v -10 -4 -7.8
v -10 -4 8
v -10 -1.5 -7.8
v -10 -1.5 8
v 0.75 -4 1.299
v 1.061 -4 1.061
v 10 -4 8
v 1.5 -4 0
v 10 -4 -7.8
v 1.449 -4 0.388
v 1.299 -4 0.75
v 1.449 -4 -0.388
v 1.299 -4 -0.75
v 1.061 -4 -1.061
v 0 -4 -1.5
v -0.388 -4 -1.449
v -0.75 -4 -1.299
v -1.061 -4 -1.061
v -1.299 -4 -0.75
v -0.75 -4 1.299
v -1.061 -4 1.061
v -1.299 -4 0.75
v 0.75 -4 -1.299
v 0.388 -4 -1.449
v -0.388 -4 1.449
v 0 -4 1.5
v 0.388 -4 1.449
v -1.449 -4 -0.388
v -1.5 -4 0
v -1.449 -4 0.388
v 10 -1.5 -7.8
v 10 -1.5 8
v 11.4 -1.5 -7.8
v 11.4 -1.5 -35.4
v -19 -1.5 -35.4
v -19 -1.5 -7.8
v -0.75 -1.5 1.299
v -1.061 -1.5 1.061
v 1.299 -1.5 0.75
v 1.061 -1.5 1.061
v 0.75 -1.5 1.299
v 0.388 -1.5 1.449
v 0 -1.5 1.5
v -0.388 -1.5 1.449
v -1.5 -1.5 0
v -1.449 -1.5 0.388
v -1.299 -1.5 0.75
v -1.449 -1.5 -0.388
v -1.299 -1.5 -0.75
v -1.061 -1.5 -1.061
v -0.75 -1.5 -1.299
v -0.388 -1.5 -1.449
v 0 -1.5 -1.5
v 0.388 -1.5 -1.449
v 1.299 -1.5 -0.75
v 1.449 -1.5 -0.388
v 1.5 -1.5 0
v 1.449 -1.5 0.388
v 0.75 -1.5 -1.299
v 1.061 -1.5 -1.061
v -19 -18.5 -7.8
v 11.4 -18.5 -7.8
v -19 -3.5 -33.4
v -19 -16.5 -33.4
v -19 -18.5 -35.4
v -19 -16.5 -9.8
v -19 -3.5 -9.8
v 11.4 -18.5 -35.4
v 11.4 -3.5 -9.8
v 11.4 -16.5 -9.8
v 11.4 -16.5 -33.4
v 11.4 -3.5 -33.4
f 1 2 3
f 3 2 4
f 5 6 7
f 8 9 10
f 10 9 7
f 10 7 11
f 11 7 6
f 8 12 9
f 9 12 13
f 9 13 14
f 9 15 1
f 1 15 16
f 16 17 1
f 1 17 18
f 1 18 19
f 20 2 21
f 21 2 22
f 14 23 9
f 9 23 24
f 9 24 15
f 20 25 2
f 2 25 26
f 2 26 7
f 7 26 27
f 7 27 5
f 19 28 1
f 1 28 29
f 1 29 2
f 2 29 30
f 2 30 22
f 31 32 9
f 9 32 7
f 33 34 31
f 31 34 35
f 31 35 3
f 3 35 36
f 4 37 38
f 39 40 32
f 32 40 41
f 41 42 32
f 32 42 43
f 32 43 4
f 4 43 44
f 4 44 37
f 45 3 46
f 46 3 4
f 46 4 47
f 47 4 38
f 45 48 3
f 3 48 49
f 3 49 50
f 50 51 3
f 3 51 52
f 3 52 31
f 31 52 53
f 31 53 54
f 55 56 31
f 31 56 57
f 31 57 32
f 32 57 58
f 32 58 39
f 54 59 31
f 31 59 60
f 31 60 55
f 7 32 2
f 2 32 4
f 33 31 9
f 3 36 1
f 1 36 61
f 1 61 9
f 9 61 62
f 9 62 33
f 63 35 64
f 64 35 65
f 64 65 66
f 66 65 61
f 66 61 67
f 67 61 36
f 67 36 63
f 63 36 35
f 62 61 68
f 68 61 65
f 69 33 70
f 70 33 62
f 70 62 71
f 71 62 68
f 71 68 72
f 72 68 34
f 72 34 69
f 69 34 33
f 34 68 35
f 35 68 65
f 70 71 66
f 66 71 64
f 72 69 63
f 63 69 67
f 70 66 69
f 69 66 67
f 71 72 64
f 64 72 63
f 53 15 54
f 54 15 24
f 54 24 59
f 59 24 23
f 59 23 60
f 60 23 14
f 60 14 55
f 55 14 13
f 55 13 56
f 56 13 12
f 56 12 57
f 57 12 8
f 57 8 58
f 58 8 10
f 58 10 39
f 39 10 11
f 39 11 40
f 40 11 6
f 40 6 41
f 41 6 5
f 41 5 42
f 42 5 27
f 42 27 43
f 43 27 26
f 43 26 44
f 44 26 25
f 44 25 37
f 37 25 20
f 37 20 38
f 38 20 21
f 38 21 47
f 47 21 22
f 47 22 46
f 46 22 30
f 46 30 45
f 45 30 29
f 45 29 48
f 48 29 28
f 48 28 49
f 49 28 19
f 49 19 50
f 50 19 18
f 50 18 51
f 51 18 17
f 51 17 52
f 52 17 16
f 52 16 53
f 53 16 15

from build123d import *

# Parameters (mm, degrees)
S_BOX1_W       = 20
S_BOX1_H       = 2.5
BOSS_1_DEPTH   = 42
S_BOX2_W       = 30.4
S_BOX2_H       = 17
BOSS_2_DEPTH   = 27.6
S_CUT3_W       = 30.6
S_CUT3_H       = 13
POCKET_3_DEPTH = 23.6
S_HOLE4_R      = 1.5
HOLE_4_DEPTH   = 2.7


with BuildPart() as part:
    # S_box1 → Boss_1 (new body)
    with BuildSketch(Plane.XY.offset(-34)):
        with Locations((0, -2.75)):
            Rectangle(S_BOX1_W, S_BOX1_H)
    extrude(amount=BOSS_1_DEPTH)

    # S_box2 → Boss_2 (add)
    with BuildSketch(Plane.XY.offset(-35.4)):
        with Locations((-3.8, -10)):
            Rectangle(S_BOX2_W, S_BOX2_H)
    extrude(amount=BOSS_2_DEPTH)

    # S_cut3 → Pocket_3 (cut)
    with BuildSketch(Plane.XY.offset(-33.4)):
        with Locations((-3.8, -10)):
            Rectangle(S_CUT3_W, S_CUT3_H)
    extrude(amount=POCKET_3_DEPTH, mode=Mode.SUBTRACT)

    # S_hole4 → Hole_4 (cut)
    with BuildSketch(Plane(origin=(0, -4.1, 0), x_dir=(1, 0, 0), z_dir=(0, 1, 0))):
        with Locations(Location((0, 0, 0), (0, 0, 90))):
            Circle(S_HOLE4_R)
    extrude(amount=HOLE_4_DEPTH, mode=Mode.SUBTRACT)


solid = part.part
